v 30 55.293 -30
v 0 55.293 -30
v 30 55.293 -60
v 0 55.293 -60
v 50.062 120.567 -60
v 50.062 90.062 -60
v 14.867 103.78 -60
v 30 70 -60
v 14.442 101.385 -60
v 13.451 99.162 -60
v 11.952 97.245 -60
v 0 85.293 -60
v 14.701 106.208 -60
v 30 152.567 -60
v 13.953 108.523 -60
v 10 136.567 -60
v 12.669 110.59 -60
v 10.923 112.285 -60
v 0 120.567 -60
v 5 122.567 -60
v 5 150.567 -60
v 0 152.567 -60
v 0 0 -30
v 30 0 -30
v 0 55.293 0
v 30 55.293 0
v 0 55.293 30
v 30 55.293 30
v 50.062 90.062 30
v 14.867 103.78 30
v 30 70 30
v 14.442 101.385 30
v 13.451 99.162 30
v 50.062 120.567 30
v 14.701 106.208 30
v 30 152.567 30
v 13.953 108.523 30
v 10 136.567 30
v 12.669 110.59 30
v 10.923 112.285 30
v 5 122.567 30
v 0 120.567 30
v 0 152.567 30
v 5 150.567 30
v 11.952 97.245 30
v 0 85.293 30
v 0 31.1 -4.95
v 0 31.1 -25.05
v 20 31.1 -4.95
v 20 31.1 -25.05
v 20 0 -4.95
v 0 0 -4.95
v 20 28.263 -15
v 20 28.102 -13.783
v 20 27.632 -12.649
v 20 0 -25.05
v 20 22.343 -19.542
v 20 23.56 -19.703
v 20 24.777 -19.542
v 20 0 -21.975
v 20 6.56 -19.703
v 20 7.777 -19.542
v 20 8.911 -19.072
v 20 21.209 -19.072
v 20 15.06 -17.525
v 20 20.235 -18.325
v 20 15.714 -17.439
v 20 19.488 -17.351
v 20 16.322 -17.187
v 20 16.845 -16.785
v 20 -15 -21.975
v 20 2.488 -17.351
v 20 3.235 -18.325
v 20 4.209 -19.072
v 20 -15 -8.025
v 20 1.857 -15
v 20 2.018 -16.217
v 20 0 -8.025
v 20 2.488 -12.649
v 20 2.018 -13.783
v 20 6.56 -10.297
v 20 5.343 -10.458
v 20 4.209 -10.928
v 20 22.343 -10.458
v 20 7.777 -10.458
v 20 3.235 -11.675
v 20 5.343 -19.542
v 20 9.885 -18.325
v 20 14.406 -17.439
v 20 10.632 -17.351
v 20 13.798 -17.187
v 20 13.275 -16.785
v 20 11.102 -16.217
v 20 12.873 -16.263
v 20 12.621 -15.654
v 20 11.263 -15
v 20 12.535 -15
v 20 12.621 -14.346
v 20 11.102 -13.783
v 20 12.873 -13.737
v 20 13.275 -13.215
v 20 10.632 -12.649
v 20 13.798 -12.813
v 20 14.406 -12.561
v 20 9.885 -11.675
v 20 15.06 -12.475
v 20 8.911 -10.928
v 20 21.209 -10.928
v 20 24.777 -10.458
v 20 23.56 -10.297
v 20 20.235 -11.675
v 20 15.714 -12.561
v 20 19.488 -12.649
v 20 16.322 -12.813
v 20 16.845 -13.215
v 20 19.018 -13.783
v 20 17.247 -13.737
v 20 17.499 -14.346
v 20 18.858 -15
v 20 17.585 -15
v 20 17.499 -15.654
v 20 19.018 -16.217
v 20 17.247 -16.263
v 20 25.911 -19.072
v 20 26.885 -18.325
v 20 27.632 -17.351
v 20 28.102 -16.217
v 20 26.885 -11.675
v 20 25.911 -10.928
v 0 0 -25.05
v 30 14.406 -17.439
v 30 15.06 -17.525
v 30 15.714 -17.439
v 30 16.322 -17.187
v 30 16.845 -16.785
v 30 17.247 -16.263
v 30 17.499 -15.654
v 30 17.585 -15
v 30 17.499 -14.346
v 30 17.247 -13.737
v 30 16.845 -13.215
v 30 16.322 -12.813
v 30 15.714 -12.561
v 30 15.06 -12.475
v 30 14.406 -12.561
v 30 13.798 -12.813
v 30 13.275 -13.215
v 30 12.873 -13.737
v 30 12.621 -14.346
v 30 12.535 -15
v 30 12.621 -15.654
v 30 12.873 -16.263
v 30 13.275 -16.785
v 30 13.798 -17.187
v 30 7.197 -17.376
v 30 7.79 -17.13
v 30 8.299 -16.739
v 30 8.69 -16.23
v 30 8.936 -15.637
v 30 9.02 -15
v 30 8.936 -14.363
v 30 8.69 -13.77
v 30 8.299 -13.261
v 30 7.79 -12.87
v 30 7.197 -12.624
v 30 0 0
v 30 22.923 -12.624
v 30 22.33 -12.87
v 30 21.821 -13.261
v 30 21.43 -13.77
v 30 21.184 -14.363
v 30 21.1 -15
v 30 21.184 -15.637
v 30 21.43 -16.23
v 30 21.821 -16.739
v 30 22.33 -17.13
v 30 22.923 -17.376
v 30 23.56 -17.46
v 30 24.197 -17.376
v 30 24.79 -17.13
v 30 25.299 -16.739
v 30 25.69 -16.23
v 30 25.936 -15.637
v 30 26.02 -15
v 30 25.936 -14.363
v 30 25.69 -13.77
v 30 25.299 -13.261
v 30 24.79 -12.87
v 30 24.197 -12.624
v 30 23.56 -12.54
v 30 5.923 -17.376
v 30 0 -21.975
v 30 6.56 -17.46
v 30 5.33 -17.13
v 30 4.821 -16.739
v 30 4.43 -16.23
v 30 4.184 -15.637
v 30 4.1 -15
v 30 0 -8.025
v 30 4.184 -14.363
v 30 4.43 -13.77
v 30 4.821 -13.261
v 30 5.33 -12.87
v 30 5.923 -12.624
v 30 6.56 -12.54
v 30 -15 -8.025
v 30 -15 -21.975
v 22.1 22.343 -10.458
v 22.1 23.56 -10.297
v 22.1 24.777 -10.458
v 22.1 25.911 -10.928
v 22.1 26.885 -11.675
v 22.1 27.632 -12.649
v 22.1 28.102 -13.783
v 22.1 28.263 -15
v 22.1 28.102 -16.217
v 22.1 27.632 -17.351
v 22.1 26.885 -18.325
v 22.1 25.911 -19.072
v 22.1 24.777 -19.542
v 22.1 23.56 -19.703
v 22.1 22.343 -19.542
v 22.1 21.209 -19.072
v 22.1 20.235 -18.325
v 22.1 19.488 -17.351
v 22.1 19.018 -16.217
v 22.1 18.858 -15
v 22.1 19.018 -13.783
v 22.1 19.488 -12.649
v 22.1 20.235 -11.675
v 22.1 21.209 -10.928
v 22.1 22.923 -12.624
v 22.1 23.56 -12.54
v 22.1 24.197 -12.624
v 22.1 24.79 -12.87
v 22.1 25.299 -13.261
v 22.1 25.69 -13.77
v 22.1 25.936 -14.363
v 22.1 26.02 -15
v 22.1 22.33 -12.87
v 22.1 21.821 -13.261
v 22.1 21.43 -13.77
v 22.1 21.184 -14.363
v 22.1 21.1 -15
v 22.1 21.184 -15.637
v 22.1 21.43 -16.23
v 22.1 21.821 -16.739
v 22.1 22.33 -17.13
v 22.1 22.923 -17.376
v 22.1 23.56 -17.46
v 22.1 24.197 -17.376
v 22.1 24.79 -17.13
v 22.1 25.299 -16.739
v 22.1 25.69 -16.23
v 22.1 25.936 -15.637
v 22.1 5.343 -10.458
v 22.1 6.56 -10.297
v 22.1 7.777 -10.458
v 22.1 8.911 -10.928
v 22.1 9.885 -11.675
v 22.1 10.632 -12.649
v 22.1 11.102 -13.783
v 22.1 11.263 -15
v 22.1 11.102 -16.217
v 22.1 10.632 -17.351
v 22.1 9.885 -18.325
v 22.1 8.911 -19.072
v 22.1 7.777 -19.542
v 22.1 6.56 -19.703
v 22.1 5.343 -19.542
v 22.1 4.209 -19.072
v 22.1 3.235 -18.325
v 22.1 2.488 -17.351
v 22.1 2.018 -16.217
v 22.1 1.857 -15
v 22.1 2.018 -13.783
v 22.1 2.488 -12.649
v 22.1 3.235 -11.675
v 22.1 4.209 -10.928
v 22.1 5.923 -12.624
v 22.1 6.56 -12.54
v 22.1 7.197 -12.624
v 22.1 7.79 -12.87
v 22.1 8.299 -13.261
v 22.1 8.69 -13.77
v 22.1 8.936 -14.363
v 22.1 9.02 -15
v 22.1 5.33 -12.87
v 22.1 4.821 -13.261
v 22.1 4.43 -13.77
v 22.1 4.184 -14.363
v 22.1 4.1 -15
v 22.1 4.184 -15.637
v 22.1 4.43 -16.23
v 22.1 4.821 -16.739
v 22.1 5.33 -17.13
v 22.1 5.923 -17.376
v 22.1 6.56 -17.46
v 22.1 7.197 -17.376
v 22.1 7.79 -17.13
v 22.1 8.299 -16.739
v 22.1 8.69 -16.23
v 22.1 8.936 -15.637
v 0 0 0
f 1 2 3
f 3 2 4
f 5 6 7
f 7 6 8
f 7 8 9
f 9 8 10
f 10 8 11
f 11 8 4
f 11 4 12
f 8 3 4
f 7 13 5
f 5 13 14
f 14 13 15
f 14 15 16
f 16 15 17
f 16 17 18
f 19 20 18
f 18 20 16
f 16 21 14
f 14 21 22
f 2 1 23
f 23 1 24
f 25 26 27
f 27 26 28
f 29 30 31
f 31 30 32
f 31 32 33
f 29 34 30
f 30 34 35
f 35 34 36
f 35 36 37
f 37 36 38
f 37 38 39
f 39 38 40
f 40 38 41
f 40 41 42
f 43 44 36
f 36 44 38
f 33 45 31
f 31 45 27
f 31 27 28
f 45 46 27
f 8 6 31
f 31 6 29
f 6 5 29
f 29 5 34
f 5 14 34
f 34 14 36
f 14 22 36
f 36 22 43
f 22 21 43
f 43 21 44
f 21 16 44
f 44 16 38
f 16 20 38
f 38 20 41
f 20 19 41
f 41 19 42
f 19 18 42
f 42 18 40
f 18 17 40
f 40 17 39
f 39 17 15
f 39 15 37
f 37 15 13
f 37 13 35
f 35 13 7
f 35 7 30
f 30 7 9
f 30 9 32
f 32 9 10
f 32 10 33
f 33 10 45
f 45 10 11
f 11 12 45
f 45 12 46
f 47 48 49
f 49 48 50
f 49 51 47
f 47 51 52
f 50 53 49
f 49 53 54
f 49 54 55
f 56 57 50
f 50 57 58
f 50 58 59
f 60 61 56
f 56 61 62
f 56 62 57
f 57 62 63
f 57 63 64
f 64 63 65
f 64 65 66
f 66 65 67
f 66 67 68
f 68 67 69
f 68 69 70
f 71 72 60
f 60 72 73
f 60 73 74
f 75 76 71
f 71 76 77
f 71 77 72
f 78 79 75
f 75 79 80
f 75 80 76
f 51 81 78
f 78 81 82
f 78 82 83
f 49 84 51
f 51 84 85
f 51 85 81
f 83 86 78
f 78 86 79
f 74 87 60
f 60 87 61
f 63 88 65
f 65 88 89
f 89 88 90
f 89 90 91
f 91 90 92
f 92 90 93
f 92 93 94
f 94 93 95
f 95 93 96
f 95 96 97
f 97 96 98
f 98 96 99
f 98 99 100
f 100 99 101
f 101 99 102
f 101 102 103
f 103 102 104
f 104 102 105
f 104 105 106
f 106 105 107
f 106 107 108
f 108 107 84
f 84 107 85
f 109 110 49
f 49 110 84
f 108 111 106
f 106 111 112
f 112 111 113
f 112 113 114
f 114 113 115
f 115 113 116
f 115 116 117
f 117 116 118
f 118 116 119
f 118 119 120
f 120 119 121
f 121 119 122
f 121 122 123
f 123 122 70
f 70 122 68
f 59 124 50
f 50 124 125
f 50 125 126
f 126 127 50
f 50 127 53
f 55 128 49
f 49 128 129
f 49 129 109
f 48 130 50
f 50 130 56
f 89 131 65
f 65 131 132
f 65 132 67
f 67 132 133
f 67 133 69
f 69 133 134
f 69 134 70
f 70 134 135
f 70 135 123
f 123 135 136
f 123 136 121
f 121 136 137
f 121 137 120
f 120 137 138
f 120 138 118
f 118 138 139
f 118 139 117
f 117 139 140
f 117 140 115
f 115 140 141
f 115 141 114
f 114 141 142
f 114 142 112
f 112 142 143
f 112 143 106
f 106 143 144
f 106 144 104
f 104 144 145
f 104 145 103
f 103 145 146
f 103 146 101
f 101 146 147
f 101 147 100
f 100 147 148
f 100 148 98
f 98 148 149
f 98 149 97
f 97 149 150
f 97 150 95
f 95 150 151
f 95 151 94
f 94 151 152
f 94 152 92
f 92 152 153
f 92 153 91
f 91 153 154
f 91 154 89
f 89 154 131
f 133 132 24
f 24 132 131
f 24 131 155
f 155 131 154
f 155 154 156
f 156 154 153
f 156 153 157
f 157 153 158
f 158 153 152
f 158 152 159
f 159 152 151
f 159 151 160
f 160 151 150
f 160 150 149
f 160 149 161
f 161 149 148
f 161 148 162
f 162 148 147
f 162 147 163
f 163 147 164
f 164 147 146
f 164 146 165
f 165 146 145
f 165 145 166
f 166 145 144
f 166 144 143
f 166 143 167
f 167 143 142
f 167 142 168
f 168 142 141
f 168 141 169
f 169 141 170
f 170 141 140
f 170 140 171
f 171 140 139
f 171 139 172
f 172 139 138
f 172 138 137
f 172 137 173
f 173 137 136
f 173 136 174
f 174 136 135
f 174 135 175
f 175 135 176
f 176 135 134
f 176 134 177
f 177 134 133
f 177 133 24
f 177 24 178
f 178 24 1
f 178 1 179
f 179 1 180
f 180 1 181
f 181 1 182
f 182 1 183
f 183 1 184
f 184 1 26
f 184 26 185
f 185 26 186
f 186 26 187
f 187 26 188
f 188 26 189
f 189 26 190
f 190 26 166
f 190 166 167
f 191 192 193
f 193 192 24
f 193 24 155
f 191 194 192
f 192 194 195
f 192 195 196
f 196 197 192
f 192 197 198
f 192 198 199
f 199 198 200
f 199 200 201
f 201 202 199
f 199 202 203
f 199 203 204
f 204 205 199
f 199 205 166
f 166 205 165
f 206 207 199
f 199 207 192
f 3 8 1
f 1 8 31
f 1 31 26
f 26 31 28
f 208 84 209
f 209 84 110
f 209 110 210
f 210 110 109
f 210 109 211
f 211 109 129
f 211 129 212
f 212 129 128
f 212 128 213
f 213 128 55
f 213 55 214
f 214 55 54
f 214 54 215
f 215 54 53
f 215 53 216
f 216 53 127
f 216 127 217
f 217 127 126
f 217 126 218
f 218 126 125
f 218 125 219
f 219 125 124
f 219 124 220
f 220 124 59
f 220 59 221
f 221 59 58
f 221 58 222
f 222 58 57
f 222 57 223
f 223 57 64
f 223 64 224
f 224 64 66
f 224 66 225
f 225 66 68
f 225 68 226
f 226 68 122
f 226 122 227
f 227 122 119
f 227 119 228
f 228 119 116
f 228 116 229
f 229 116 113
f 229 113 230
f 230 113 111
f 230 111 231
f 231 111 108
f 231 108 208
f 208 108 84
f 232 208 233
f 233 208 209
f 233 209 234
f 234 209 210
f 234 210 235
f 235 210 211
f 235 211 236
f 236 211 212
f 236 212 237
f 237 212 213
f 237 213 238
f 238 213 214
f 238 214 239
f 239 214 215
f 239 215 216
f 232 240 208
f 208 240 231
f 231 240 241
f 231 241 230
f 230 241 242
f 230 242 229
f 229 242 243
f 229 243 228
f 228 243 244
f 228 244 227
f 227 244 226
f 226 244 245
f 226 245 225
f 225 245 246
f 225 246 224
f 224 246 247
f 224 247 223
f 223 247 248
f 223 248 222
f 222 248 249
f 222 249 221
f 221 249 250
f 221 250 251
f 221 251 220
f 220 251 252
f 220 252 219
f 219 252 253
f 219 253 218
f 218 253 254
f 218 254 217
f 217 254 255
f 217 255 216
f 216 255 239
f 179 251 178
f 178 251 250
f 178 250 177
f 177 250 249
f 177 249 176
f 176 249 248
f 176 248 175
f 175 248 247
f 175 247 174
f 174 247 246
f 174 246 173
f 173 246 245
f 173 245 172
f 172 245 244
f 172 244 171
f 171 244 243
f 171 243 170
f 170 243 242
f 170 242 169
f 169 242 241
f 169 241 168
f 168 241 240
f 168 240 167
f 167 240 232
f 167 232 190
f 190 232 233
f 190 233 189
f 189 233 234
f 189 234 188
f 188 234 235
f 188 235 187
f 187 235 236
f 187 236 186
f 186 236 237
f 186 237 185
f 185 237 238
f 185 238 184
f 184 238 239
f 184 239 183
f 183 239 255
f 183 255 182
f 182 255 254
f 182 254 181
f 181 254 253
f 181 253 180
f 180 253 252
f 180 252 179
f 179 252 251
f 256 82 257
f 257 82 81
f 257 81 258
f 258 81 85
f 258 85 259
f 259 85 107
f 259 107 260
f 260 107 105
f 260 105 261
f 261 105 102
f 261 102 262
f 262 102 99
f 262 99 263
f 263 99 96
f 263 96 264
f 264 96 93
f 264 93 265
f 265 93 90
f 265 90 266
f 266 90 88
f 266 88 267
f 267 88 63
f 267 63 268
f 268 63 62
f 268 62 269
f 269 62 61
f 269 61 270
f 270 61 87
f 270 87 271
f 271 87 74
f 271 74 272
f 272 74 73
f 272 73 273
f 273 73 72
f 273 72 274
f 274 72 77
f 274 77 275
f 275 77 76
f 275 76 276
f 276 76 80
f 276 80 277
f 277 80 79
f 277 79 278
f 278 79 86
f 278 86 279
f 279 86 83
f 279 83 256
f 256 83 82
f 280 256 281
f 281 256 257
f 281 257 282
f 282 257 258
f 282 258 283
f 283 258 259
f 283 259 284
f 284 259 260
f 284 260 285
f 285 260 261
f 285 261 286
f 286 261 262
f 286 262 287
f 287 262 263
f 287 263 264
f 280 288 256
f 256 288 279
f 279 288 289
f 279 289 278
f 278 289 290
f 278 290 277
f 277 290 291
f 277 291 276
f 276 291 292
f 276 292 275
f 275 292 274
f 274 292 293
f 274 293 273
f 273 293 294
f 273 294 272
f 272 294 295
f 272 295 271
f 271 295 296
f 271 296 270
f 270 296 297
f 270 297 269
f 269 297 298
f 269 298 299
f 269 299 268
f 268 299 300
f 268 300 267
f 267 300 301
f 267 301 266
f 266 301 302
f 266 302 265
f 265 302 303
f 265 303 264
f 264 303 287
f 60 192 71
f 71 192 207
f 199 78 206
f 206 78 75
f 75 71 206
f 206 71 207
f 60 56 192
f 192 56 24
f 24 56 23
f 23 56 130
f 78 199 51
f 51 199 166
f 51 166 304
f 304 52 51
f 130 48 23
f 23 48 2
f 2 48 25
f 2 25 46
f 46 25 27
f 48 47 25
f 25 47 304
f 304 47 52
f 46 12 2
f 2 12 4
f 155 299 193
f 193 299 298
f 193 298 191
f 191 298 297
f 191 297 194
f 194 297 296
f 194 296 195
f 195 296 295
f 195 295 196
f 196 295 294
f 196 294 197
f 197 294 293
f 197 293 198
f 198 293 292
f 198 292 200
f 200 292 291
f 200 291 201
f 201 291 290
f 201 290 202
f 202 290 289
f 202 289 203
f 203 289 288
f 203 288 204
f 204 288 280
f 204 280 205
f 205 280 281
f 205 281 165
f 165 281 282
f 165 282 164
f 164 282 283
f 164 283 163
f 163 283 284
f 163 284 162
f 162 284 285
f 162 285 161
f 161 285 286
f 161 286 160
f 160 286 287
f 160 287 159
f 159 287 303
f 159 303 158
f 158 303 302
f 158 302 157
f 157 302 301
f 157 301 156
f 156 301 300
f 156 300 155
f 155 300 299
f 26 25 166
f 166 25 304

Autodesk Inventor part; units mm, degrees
ref_plane "YZ Plane" through (0, 0, 0) normal (1, 0, 0) x (0, 1, 0)
ref_plane "XZ Plane" through (0, 0, 0) normal (0, 1, 0) x (-1, 0, 0)
sketch "Sketch1" plane through (0, 0, 0) normal (0, 0, 1) x (1, 0, 0)
  line L0 (0, 0) -> (25, 0)
  line L1 (25, 0) -> (25, 40)
  line L2 (25, 40) -> (0, 40)
  line L3 (0, 40) -> (0, 0)
  dimension "d1" = 25
  dimension "d2" = 40
  dimension "d3" = 25
extrude "Extrusion1" add sketch "Sketch1" against normal blind 30
sketch "Sketch2" plane through (25, 0, 0) normal (1, 0, 0) x (0, 0, -1)
  line L0 (0, 0) -> (30, 0) projected
  circle A0 centre (15, 6.56) radius 2.46
extrude "Extrusion2" cut sketch "Sketch2" against normal blind 30
sketch "Sketch3" plane through (0, 0, 0) normal (-1, 0, 0) x (0, 0, 1)
  line L0 (0, 0) -> (-30, 0) projected
  line L1 (-25.05, 0) -> (-4.95, 0)
  line L2 (-4.95, 0) -> (-4.95, 33.12)
  line L3 (-4.95, 33.12) -> (-25.05, 33.12)
  line L4 (-25.05, 33.12) -> (-25.05, 0)
  dimension "d11" = 20.1
extrude "Extrusion3" cut sketch "Sketch3" against normal blind 20
sketch "Sketch4" plane through (0, 0, 0) normal (0, -1, 0) x (1, 0, 0)
  line L0 (20, -4.95) -> (20, -25.05) projected
  line L1 (20, -15) -> (25, -15)
  line L2 (25, 0) -> (25, -30) projected
  line L3 (20, -8.025) -> (25, -8.025)
  line L4 (25, -8.025) -> (25, -21.975)
  line L5 (25, -21.975) -> (20, -21.975)
  line L6 (20, -21.975) -> (20, -8.025)
  line L7 (20, -8.025) -> (25, -21.975) construction
  line L8 (25, -8.025) -> (20, -21.975) construction
  line L9 (25, -12.54) -> (25, -17.46) projected
  point P0 (0, 0)
  point P1 (22.5, -15)
  dimension "d14" = 13.95
extrude "Extrusion4" add sketch "Sketch4" along normal blind 15
sketch "Sketch5" plane through (20, 0, 0) normal (-1, 0, 0) x (0, 0, 1)
  circle A0 centre (-15, 6.56) radius 2.46 projected
  circle A1 centre (-15, 6.56) radius 4.7025
  circle A2 centre (-15, 6.56) radius 2.46 projected
  circle A3 centre (-15, 6.56) radius 2.46
  point P0 (0, 0)
  dimension "d17" = 9.405
extrude "Extrusion5" cut sketch "Sketch5" against normal blind 2.1
sketch "Sketch6" plane through (25, 0, 0) normal (1, 0, 0) x (0, 0, -1)
  circle A0 centre (15, 6.56) radius 4.7025 projected
  line L0 (15, 6.56) -> (15, 23.56)
  circle A1 centre (15, 23.56) radius 2.46
  point P0 (0, 0)
  dimension "d20" = 17
  dimension "d21" = 4.92
extrude "Extrusion6" cut sketch "Sketch6" against normal blind 10 contours A1
sketch "Sketch7" plane through (20, 0, 0) normal (-1, 0, 0) x (0, 0, 1)
  circle A0 centre (-15, 23.56) radius 2.46 projected
  circle A1 centre (-15, 23.56) radius 4.7025
  point P0 (0, 0)
  dimension "d24" = 9.405
extrude "Extrusion7" cut sketch "Sketch7" against normal blind 2.1
sketch "Sketch9" plane through (25, 0, 0) normal (1, 0, 0) x (0, 0, -1)
  circle A0 centre (15, 6.56) radius 2.46 projected
  circle A1 centre (15, 6.56) radius 2.46
  circle A2 centre (15, 23.56) radius 2.46 projected
  circle A3 centre (15, 23.56) radius 2.46
  line L0 (30, 40) -> (30, 0) projected
  line L1 (30, 0) -> (30, 40)
  line L2 (30, 40) -> (0, 40)
  line L3 (0, 40) -> (0, 0)
  line L4 (0, 0) -> (8.025, 0) projected
  line L5 (21.975, 0) -> (21.975, -15)
  line L6 (21.975, -15) -> (8.025, -15)
  line L7 (8.025, -15) -> (8.025, 0)
  line L8 (0, 0) -> (8.025, 0)
  line L9 (21.975, 0) -> (30, 0)
extrude "Extrusion8" add sketch "Sketch9" along normal blind 5
sketch "Sketch10" plane through (0, 40, 0) normal (0, 1, 0) x (1, 0, 0)
  line L0 (0, 30) -> (30, 30) projected
  line L1 (30, 0) -> (0, 0) projected
  line L2 (0, 30) -> (30, 30)
  line L3 (30, 30) -> (30, 0)
  line L4 (30, 0) -> (0, 0)
  line L5 (0, 0) -> (0, 30)
extrude "Extrusion9" add sketch "Sketch10" along normal blind 30
sketch "Sketch12" plane through (30, 0, 0) normal (1, 0, 0) x (0, 0, -1)
  circle A0 centre (15, 6.56) radius 2.46 projected
  line L0 (15, 6.56) -> (15, 15.06)
  circle A1 centre (15, 15.06) radius 2.525
  point P0 (0, 0)
  dimension "d31" = 8.5
  dimension "d33" = 5.05
extrude "Extrusion10" cut sketch "Sketch12" against normal blind 30 contours A1
sketch "Sketch15" plane through (0, 0, -25.05) normal (-1, 0, 0) x (0, 0, 1)
  line L0 (0, 33.12) -> (20.1, 33.12) projected
  line L1 (20.1, 33.12) -> (20.1, 0) projected
  line L2 (0, 33.12) -> (20.1, 33.12)
  line L3 (20.1, 33.12) -> (20.1, 31.1)
  line L4 (20.1, 31.1) -> (0, 31.1)
  line L5 (0, 31.1) -> (0, 33.12)
  point P0 (25.05, 0)
  dimension "d57" = 2.02
extrude "Extrusion13" add sketch "Sketch15" against normal blind 20
sketch "Sketch17" plane through (0, 0, 0) normal (0, 0, 1) x (1, 0, 0)
  line L0 (0, 70) -> (30, 70) projected
  line L1 (30, 70) -> (50.0622, 90.0622)
  line L2 (30, 70) -> (80, 70) construction
  line L3 (11.9522, 97.2454) -> (0, 85.2932)
  line L4 (0, 70) -> (0, 85.2932)
  line L5 (0, 70) -> (0, 0) projected
  line L6 (0, 70) -> (30, 70)
  line L7 (10.923, 112.2849) -> (0, 120.567)
  line L8 (50.0622, 105.3553) -> (50.0622, 120.567)
  line L9 (50.0622, 105.3553) -> (50.0622, 90.0622)
  arc A0 (11.9522, 97.2454) -> (10.923, 112.2849) centre (4.8811, 104.3165) ccw
  line L10 (0, 152.567) -> (30, 152.567)
  line L11 (30, 152.567) -> (50.0622, 120.567)
  line L12 (5, 150.567) -> (0, 152.567)
  line L13 (5, 122.567) -> (0, 120.567)
  line L14 (5, 122.567) -> (10, 136.567)
  line L15 (10, 136.567) -> (5, 150.567)
  dimension "d61" = 45
  dimension "d62" = 32.0271
  dimension "d72" = 10
extrude "Extrusion14" add sketch "Sketch17" against normal blind 30
sketch "Sketch22" plane through (0, 0, 0) normal (0, 0, 1) x (1, 0, 0)
  line L0 (30, 0) -> (30, 70) projected
  line L1 (50.0622, 90.0622) -> (30, 70) projected
  line L2 (30, 70) -> (50.0622, 90.0622)
  line L3 (50.0622, 120.567) -> (50.0622, 90.0622) projected
  line L4 (50.0622, 90.0622) -> (50.0622, 120.567)
  line L5 (30, 152.567) -> (50.0622, 120.567) projected
  line L6 (50.0622, 120.567) -> (30, 152.567)
  line L7 (0, 152.567) -> (30, 152.567) projected
  line L8 (30, 152.567) -> (0, 152.567)
  line L9 (5, 150.567) -> (0, 152.567) projected
  line L10 (0, 152.567) -> (5, 150.567)
  line L11 (5, 150.567) -> (10, 136.567) projected
  line L12 (5, 150.567) -> (10, 136.567)
  line L13 (10, 136.567) -> (5, 122.567) projected
  line L14 (10, 136.567) -> (5, 122.567)
  line L15 (5, 122.567) -> (0, 120.567) projected
  line L16 (5, 122.567) -> (0, 120.567)
  line L17 (0, 120.567) -> (10.923, 112.2849) projected
  line L18 (0, 120.567) -> (10.923, 112.2849)
  line L19 (0, 85.2932) -> (11.9522, 97.2454) projected
  line L20 (11.9522, 97.2454) -> (0, 85.2932)
  line L21 (0, 85.2932) -> (0, 55.2932)
  line L22 (0, 0) -> (0, 85.2932) projected
  line L23 (0, 55.2932) -> (30, 55.2932)
  line L24 (30, 55.2932) -> (30, 70)
  arc A0 (11.9522, 97.2454) -> (10.923, 112.2849) centre (4.8811, 104.3165) ccw
  dimension "d92" = 30
extrude "Extrusion15" add sketch "Sketch22" along normal blind 30
ref_plane "Work Plane1" through (0, 0, -15) normal (0, 0, 1) x (1, 0, 0)
mirror "Mirror1" about plane through (0, 0, -15) normal (0, 0, 1) of "Extrusion15"
properties part number "rec_c_28mm_x_90mm"
